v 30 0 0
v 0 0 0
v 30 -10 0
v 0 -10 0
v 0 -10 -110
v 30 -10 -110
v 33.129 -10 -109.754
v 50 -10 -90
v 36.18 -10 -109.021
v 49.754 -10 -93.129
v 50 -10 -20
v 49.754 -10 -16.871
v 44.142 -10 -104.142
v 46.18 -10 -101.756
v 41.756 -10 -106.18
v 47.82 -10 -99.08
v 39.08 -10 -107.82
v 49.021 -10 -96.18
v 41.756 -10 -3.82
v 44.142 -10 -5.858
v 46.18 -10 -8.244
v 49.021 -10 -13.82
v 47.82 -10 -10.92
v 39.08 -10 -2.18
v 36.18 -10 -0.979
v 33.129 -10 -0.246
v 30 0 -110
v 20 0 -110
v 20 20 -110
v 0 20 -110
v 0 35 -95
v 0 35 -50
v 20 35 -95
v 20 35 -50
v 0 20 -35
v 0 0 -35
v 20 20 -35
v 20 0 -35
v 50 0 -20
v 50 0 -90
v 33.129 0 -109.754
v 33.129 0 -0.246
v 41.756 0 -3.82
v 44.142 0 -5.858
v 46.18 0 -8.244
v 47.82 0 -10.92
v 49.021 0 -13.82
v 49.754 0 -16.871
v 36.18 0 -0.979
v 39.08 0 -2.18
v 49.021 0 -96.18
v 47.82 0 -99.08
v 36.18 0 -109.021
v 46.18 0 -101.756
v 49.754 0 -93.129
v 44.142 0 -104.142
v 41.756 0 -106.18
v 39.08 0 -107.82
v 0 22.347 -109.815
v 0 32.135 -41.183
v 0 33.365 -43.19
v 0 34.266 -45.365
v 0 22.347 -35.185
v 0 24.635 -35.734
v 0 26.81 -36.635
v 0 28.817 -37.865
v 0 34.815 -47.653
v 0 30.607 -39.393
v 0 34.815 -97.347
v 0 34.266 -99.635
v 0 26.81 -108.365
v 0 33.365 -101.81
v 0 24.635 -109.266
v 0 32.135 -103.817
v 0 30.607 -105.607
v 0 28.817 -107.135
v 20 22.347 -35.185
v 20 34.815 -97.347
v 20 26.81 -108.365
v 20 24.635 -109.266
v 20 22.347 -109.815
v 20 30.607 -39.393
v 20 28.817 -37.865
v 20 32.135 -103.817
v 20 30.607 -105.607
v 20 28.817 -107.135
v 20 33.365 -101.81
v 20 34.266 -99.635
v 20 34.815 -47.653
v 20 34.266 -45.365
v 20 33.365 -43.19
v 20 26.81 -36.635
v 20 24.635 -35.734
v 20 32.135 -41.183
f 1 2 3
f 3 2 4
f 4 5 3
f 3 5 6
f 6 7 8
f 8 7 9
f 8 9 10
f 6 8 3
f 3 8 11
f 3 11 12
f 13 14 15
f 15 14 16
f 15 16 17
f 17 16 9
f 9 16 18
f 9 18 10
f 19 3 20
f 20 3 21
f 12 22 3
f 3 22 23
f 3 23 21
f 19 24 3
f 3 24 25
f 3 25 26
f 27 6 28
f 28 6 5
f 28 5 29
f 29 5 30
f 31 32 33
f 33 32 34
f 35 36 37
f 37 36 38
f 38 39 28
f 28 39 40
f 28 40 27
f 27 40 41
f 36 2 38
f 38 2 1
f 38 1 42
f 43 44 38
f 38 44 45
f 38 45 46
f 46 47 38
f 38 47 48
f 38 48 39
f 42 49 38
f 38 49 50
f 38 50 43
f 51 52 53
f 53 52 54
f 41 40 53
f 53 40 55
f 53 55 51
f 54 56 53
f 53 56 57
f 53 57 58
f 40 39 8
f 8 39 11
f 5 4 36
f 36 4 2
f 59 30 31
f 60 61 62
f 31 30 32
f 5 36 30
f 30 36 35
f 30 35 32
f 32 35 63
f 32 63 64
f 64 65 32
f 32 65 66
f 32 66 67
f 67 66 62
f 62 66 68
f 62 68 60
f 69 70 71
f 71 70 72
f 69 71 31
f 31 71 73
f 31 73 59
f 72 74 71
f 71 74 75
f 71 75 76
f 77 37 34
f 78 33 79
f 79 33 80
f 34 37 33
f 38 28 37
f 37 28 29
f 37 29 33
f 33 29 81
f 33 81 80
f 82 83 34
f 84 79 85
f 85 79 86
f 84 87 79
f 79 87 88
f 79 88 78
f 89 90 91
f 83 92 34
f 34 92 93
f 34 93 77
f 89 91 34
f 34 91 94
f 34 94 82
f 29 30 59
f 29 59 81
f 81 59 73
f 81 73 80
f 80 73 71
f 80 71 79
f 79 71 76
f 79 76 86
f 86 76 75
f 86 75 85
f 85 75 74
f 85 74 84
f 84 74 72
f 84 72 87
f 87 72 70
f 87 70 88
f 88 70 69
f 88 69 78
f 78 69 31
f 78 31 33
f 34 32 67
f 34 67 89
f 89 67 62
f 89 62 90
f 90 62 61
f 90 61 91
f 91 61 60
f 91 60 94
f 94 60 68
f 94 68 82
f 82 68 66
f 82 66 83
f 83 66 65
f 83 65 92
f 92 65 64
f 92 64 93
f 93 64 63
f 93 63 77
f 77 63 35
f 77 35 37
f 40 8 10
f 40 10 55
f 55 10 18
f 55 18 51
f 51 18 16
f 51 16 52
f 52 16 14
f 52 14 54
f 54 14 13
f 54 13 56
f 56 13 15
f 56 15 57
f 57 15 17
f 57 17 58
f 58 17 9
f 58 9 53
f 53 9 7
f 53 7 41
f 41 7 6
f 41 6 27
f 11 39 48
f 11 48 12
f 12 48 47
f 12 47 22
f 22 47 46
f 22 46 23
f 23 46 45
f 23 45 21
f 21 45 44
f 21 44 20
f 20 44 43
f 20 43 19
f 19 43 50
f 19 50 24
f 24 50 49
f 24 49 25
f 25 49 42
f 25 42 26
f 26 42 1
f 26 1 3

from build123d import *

# Parameters (mm, degrees)
EXTRUDE_1_DEPTH     = 50
SKETCH_2_W          = 30
SKETCH_2_H          = 35
CUT_EXTRUDE_1_DEPTH = 116
FILLET_1_R          = 15
FILLET_2_R          = 20


with BuildPart() as part:
    # 스케치1 → 보스-돌출1 (new body)
    with BuildSketch(Plane(origin=(0, 0, 0), x_dir=(0, 0, -1), z_dir=(1, 0, 0))):
        Polygon((0, 0), (35, 0), (35, 35), (110, 35), (110, -10), (0, -10), align=None)
    extrude(amount=EXTRUDE_1_DEPTH)

    # 스케치2 → 컷-돌출1 (cut)
    with BuildSketch(Plane.XY.offset(-35)):
        with Locations((35, 17.5)):
            Rectangle(SKETCH_2_W, SKETCH_2_H)
    extrude(amount=-CUT_EXTRUDE_1_DEPTH, mode=Mode.SUBTRACT)

    # 필렛1
    fillet_1_edges = [part.edges().sort_by_distance(p)[0] for p in [
        (10, 35, -35),
        (10, 35, -110),
    ]]
    fillet(fillet_1_edges, radius=FILLET_1_R)

    # 필렛2
    fillet_2_edges = [part.edges().sort_by_distance(p)[0] for p in [
        (50, -5, -110),
        (50, -5, 0),
    ]]
    fillet(fillet_2_edges, radius=FILLET_2_R)


solid = part.part
